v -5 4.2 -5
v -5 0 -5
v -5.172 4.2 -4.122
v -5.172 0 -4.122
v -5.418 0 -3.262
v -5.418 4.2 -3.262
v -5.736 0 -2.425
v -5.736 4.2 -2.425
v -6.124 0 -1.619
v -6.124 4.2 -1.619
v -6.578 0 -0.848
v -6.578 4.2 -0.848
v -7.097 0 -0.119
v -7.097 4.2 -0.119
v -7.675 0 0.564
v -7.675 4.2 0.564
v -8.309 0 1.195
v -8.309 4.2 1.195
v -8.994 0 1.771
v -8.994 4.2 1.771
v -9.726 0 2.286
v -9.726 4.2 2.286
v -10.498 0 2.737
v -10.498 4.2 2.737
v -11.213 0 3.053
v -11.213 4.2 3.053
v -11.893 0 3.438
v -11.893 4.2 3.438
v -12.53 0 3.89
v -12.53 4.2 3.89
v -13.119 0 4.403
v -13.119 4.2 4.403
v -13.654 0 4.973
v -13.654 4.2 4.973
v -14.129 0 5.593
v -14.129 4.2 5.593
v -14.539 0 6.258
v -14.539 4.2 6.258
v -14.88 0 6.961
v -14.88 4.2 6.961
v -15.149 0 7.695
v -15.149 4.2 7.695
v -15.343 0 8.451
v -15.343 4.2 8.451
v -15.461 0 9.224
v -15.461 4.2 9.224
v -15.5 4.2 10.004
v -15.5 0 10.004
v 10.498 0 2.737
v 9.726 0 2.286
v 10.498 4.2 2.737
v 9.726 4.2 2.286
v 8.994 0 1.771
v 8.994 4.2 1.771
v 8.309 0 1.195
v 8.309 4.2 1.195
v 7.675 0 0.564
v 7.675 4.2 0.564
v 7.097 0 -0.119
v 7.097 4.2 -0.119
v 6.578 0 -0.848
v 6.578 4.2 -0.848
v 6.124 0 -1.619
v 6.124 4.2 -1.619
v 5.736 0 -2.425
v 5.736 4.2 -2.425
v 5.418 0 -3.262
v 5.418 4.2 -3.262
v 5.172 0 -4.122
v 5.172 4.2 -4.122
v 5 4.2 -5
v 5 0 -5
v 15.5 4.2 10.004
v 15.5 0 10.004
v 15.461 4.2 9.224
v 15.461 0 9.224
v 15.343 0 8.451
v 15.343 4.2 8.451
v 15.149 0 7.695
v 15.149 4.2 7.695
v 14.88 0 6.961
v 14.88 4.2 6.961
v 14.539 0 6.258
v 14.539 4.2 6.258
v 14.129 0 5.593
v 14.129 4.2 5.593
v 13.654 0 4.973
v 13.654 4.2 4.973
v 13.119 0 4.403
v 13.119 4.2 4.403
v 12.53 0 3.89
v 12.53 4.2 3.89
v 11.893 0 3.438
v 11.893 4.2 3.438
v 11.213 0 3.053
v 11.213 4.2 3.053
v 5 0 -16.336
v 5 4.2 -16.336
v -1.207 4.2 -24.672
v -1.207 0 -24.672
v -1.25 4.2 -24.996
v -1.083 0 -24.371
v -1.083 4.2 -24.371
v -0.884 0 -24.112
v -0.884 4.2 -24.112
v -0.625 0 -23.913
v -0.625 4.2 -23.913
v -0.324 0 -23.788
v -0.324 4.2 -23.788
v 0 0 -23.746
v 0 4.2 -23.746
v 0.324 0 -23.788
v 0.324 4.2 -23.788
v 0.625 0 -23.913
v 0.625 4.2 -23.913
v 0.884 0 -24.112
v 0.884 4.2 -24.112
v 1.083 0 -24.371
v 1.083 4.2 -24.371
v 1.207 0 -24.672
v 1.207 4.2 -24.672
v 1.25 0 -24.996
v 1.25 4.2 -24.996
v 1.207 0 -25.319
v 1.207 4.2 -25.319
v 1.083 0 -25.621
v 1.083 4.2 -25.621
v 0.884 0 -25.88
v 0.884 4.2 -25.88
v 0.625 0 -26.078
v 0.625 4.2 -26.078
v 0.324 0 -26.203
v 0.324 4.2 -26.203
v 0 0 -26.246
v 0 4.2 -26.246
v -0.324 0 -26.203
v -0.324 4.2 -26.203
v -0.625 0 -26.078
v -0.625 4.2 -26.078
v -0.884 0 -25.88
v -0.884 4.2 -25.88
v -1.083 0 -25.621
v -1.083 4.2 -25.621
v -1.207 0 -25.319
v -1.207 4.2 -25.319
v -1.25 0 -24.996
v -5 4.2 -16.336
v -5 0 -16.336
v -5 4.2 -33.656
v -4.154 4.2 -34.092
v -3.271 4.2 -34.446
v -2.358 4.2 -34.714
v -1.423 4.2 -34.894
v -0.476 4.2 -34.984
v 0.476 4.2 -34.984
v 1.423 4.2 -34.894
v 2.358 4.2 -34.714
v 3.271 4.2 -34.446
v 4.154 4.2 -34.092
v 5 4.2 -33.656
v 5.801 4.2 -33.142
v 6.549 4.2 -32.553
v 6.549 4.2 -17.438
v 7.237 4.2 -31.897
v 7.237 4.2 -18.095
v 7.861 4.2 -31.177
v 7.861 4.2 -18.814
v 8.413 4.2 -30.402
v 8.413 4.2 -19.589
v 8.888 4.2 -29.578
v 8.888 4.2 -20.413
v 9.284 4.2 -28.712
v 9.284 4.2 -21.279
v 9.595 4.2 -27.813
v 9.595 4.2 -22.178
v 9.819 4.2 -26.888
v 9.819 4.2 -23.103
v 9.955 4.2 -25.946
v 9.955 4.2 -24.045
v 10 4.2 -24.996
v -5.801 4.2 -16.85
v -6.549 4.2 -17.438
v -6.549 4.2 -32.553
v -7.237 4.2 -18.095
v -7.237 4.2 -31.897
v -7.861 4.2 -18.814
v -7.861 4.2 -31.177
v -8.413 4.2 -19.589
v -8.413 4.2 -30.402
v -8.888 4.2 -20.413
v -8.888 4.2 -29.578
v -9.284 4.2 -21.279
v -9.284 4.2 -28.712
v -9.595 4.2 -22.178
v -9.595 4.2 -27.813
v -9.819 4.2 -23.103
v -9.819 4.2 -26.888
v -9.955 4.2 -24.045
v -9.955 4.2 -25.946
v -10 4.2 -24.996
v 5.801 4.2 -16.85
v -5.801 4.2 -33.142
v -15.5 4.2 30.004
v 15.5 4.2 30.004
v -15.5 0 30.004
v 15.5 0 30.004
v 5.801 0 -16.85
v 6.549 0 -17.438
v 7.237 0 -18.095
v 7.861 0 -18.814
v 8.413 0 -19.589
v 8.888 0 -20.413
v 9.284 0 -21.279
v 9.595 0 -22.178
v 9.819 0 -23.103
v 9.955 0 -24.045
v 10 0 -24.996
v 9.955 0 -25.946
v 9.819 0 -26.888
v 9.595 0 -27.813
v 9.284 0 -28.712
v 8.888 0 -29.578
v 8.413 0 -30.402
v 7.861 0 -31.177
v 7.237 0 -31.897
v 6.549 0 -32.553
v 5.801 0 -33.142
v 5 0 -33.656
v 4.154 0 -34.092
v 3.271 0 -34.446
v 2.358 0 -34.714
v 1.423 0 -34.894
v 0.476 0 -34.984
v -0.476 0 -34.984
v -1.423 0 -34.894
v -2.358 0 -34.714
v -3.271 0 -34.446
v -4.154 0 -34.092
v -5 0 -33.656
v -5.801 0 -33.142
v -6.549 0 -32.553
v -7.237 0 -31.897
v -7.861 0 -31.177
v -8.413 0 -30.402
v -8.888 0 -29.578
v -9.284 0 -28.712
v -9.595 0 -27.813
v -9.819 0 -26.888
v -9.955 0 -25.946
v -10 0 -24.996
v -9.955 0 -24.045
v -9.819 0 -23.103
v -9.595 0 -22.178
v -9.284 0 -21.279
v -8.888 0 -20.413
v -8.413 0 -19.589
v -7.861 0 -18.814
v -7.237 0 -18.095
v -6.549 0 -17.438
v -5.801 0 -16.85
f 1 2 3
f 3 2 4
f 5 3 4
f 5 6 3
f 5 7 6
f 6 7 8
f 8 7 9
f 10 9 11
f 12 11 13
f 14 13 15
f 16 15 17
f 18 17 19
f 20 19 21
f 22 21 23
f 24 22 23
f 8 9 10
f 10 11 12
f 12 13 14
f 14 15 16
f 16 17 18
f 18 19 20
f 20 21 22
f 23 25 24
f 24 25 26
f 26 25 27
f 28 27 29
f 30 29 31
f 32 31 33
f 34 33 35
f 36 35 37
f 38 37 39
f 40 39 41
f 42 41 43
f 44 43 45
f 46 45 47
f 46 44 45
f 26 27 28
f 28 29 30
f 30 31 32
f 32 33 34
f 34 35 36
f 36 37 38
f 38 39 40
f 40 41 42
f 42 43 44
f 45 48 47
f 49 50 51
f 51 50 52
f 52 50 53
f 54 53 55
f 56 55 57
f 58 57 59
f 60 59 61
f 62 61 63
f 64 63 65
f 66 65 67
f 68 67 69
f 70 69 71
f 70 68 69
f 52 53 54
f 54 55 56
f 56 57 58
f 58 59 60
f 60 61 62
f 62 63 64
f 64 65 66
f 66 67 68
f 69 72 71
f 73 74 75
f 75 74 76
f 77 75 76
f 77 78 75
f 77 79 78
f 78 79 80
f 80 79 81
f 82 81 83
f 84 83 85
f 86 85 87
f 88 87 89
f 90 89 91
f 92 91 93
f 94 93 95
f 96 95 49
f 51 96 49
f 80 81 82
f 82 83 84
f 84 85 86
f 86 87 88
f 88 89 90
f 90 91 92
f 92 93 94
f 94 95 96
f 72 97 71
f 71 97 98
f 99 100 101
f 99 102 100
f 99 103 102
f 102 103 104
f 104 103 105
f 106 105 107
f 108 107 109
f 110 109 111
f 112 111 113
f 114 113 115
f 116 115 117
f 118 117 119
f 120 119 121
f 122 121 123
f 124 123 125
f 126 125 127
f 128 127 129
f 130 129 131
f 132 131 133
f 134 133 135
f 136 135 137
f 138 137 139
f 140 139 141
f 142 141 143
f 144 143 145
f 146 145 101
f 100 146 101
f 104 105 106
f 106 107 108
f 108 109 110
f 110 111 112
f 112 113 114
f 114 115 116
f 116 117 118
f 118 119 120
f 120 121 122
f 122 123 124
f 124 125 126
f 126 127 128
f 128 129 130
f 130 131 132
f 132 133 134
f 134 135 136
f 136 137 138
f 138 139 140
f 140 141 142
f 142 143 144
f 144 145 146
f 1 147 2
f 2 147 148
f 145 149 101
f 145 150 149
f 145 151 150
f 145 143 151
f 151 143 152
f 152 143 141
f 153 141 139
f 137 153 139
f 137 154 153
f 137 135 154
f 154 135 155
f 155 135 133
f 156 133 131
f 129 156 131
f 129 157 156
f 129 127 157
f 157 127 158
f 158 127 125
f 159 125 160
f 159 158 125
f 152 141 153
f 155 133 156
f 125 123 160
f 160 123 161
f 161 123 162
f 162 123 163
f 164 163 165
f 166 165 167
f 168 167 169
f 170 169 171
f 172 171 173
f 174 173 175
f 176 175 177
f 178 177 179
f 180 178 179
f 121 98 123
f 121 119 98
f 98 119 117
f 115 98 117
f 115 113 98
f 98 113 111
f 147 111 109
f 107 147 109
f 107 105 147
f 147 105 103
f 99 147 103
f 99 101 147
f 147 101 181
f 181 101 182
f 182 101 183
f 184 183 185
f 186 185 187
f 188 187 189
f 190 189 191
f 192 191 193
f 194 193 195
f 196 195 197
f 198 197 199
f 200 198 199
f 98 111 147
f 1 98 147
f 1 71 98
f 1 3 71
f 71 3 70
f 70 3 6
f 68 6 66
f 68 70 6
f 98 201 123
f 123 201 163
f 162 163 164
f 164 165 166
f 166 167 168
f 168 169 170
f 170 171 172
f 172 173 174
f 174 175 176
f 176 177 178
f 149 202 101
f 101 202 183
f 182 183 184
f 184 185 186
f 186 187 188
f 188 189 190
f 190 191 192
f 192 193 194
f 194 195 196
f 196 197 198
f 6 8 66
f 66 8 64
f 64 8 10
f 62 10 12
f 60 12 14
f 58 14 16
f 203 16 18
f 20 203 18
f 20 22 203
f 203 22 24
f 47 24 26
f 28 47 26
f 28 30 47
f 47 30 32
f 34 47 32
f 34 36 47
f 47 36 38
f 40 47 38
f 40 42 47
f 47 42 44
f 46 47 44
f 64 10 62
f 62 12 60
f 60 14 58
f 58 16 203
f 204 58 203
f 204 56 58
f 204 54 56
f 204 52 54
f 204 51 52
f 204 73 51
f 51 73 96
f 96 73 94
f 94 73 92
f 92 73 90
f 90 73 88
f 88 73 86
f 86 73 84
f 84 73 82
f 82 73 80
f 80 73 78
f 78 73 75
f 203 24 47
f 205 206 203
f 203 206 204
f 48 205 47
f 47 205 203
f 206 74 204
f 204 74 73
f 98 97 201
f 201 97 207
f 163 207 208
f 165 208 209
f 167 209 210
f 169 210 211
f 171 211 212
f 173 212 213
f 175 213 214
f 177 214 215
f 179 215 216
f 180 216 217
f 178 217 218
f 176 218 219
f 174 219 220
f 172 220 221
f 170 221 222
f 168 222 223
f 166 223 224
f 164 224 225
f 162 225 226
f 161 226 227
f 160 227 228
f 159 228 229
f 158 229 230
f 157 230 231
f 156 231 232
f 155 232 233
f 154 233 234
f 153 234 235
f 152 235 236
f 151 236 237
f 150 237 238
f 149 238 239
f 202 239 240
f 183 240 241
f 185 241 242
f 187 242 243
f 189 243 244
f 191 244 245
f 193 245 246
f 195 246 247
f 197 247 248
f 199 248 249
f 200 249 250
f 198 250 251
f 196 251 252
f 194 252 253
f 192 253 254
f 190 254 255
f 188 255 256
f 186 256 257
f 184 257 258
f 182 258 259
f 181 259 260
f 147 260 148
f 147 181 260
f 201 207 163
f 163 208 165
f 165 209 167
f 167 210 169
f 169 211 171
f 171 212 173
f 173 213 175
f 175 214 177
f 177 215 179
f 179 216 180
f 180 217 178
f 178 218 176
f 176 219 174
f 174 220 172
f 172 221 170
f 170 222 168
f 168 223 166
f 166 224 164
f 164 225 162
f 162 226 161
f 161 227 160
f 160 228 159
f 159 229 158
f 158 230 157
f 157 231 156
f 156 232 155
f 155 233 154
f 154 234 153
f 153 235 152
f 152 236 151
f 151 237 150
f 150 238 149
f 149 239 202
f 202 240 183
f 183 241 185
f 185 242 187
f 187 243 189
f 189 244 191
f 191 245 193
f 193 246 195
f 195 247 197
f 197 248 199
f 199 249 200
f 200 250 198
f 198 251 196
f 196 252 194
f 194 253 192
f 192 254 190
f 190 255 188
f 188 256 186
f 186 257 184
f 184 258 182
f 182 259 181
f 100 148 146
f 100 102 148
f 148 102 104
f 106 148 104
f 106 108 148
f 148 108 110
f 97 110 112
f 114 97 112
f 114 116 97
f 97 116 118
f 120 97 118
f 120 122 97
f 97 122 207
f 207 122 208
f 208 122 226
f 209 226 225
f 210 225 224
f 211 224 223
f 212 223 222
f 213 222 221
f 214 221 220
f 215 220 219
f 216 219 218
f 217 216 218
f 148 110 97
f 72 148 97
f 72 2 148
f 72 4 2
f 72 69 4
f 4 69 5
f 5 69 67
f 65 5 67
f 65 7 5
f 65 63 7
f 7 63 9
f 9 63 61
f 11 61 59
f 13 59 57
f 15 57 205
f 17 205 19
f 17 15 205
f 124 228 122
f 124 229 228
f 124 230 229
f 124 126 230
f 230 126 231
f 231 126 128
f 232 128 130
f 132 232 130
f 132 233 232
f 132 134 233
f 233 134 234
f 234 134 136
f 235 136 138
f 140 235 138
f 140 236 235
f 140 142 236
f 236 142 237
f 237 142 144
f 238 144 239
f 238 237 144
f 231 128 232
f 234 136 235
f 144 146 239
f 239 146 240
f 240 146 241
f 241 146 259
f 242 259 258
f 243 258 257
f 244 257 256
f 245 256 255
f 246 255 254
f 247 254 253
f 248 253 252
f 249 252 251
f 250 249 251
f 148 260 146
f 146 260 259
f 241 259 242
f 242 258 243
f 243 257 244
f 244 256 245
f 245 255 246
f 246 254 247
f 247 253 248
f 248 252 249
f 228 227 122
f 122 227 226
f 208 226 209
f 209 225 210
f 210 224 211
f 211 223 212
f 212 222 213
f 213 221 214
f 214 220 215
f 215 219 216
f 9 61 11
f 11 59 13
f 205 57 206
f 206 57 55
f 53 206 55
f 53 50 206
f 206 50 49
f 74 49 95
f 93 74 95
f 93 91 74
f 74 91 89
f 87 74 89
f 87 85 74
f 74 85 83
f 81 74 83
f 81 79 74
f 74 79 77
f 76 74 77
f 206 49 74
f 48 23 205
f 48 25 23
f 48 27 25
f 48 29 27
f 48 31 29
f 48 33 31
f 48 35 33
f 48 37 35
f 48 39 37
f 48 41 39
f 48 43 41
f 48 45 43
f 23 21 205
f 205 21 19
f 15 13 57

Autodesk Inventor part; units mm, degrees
ref_plane "YZ Plane" through (0, 0, 0) normal (1, 0, 0) x (0, 1, 0)
ref_plane "XZ Plane" through (0, 0, 0) normal (0, 1, 0) x (-1, 0, 0)
ref_plane "XY Plane" through (0, 0, 0) normal (0, 0, 1) x (1, 0, 0)
sketch "Sketch1" plane through (0, 0, 0) normal (0, 1, 0) x (-1, 0, 0)
  line L0 (-5, 10.0042) -> (5, 10.0042)
  line L1 (5, 10.0042) -> (5, -14.9958)
  line L2 (5, -14.9958) -> (-5, -14.9958)
  line L3 (-5, -14.9958) -> (-5, 10.0042)
  circle A0 centre (0, -24.9958) radius 10
  circle A1 centre (0, -24.9958) radius 1.25
  line L4 (-5, -14.9958) -> (-5, -16.3355)
  line L5 (5, -14.9958) -> (5, -16.3355)
  line L6 (-15.5, 30.0042) -> (15.5, 30.0042)
  line L7 (15.5, 30.0042) -> (15.5, 10.0042)
  line L8 (15.5, 10.0042) -> (-15.5, 10.0042)
  line L9 (-15.5, 10.0042) -> (-15.5, 30.0042)
  arc A2 (-5, -5) -> (-10.4985, 2.7374) centre (-15.4294, -6.5891) ccw
  arc A3 (-15.5, 10.0042) -> (-10.4985, 2.7374) centre (-7.7202, 10.0042) ccw
  line L10 (0, 46.7954) -> (0, -49.019) construction
  line L11 (-15.5, 10.0042) -> (-5, 10.0042)
  point P0 (0, 0)
  point P1 (0, -14.9958)
  point P2 (0, 10.0042)
  point P3 (0, 10.0042)
  dimension "d0" = 25
  dimension "d1" = 10
  dimension "d2" = 20
  dimension "d3" = 2.5
  dimension "d6" = 31
  dimension "d7" = 20
extrude "Extrusion1" add sketch "Sketch1" along normal blind 4.2 contours L8 L9 L6 L7 L0 | L0 L1 L2 L3 | L5 A0 L2 | L2 A0 L4 | A0
extrude "Extrusion2" add sketch "Sketch1" along normal blind 4.2 contours L3 A2 A3 L8
mirror "Mirror1" about plane through (0, 0, 0) normal (1, 0, 0) of "Extrusion2"
properties part number "ToolHolder"
